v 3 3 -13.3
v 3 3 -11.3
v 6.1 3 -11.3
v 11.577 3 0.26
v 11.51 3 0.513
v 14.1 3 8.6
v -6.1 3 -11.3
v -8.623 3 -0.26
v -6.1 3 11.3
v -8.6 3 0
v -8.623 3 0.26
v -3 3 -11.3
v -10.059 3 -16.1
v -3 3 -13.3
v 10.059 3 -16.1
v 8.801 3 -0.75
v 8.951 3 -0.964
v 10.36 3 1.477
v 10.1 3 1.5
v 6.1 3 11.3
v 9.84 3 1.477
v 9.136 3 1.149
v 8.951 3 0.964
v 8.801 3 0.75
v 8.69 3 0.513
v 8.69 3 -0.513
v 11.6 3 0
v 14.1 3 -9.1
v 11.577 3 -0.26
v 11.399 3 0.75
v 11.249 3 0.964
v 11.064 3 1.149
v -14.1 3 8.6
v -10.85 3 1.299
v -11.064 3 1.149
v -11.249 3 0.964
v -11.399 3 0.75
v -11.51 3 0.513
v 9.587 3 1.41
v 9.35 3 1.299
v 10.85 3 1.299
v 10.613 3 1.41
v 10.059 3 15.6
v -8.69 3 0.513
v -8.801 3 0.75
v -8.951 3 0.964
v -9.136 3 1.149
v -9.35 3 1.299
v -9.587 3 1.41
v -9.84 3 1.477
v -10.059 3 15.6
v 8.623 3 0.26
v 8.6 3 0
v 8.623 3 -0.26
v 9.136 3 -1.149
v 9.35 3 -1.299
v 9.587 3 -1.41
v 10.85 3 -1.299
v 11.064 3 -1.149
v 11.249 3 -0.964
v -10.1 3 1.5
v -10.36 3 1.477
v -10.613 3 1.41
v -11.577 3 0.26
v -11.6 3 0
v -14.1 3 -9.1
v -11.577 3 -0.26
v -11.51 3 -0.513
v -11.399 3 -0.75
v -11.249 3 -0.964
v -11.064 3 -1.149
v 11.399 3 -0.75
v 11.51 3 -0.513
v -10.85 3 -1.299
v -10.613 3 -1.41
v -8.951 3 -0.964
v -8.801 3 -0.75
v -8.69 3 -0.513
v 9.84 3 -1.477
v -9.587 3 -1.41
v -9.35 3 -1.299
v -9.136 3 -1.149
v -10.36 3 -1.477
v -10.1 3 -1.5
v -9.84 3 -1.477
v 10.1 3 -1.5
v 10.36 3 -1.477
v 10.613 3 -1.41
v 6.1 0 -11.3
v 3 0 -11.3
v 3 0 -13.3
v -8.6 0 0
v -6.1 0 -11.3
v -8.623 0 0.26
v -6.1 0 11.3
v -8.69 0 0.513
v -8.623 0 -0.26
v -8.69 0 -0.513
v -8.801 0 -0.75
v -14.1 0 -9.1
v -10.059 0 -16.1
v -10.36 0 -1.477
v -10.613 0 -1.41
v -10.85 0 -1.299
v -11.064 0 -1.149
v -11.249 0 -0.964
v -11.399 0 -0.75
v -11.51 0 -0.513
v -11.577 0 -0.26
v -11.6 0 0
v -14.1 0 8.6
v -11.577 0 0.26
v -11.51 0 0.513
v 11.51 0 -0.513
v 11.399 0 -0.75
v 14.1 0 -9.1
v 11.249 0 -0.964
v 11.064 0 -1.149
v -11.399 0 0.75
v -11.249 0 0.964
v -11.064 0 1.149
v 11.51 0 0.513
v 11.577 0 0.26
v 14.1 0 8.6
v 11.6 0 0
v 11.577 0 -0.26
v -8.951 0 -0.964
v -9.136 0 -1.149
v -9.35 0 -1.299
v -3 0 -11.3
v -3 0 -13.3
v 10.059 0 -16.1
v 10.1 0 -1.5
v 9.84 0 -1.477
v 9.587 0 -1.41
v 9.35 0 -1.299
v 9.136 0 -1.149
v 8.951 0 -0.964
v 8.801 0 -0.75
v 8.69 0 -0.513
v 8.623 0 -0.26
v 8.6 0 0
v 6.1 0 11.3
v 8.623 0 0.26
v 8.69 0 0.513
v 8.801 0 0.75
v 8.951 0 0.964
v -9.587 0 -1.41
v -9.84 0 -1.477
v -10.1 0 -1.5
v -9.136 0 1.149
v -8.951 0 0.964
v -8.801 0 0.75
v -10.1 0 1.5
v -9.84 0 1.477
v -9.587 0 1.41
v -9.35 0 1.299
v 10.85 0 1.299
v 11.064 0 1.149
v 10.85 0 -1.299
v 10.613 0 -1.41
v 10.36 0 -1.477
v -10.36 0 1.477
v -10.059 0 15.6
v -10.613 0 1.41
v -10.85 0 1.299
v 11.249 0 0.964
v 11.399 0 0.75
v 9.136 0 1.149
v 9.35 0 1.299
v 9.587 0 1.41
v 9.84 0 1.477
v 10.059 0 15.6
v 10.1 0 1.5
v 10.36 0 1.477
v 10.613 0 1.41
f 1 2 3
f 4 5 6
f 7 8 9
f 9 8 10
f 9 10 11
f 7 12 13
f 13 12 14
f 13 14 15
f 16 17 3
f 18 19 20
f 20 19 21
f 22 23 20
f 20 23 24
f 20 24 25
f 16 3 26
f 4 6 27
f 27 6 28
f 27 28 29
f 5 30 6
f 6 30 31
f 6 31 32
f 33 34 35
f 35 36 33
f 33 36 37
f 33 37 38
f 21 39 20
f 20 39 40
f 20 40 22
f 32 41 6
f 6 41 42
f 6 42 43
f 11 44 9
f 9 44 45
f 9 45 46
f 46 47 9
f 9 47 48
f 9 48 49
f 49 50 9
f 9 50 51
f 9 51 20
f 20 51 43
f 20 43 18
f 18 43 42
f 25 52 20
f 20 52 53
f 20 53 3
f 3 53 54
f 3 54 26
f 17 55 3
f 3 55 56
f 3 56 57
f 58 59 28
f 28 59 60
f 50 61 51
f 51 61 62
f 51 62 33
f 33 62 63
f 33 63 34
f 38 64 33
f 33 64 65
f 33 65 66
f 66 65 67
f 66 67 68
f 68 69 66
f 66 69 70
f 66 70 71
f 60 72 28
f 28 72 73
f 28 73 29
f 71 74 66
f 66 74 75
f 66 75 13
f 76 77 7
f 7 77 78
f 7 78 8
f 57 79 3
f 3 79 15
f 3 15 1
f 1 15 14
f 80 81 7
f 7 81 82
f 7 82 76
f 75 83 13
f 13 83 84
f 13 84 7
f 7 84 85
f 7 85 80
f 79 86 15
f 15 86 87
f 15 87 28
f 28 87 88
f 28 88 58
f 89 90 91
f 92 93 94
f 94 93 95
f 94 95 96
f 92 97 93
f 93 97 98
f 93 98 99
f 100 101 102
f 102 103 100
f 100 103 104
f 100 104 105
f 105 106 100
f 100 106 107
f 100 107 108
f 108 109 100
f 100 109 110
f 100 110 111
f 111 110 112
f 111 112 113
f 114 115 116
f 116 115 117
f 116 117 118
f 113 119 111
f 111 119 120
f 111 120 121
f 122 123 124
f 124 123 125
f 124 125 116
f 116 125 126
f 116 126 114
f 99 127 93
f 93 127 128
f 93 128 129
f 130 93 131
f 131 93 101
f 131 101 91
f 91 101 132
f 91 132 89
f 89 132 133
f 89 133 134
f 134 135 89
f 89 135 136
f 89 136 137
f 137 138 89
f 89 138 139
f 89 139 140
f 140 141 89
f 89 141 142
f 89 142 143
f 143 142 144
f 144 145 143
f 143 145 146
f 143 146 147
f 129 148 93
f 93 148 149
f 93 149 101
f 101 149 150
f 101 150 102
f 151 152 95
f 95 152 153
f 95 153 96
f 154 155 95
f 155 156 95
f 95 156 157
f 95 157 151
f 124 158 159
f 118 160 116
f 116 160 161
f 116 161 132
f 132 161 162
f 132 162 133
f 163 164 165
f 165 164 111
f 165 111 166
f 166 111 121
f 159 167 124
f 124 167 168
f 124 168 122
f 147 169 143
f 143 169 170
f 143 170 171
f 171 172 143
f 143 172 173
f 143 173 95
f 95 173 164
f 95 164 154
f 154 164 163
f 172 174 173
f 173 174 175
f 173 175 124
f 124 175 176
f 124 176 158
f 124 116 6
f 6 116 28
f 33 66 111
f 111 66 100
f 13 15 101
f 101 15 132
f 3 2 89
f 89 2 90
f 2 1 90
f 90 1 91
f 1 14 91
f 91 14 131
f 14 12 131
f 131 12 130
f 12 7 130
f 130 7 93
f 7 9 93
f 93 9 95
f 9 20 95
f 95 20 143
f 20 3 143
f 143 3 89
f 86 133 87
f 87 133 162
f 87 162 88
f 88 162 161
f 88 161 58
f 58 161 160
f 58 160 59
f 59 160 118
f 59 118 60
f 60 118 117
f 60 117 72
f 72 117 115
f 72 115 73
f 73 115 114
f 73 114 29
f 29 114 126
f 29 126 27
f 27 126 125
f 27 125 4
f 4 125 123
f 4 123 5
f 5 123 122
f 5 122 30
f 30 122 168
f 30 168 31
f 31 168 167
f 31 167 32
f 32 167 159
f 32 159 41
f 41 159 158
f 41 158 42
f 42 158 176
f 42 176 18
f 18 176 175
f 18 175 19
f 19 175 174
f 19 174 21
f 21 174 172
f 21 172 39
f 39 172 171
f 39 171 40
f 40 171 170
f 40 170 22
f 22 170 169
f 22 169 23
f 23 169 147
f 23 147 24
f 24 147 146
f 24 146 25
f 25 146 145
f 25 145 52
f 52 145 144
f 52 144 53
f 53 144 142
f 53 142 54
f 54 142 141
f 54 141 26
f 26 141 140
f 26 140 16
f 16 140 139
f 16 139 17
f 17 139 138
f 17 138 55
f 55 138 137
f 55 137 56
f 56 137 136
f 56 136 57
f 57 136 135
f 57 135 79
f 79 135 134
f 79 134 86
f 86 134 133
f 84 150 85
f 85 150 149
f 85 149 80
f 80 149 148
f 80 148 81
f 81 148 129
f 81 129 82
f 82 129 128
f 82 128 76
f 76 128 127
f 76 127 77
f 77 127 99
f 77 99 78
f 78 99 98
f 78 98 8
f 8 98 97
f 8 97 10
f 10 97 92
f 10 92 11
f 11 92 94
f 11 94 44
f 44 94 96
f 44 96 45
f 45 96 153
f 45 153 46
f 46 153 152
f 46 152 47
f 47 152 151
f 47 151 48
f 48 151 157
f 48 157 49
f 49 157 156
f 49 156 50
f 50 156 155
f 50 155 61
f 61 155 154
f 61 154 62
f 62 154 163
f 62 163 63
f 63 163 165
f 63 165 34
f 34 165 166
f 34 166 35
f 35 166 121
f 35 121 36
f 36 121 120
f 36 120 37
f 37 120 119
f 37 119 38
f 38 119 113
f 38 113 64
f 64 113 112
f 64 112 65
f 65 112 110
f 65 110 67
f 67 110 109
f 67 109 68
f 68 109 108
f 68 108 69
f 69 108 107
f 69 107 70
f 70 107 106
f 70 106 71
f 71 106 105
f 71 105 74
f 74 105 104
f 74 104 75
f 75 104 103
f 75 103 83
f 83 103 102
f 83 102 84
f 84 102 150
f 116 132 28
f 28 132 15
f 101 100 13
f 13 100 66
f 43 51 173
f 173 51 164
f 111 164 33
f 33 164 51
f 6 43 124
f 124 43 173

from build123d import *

# Parameters (mm, degrees)
SKETCH1_W           = 28.2
SKETCH1_H           = 32.2
SKETCH1_R           = 1.5
BOSS_EXTRUDE1_DEPTH = 3
CHAMFER1_SIZE       = 7
CHAMFER1_SIZE2      = 4.041451884
CHAMFER3_SIZE       = 7
CHAMFER3_SIZE2      = 4.041451884
SKETCH2_W           = 28.2
SKETCH2_H           = 3
CUT_EXTRUDE1_DEPTH  = 0.5
CHAMFER4_SIZE       = 7
CHAMFER4_SIZE2      = 4.041451884
CHAMFER5_SIZE       = 7
CHAMFER5_SIZE2      = 4.041451884


with BuildPart() as part:
    # Sketch1 → Boss-Extrude1 (new body)
    with BuildSketch(Plane(origin=(0, 0, 0), x_dir=(1, 0, 0), z_dir=(0, 1, 0))):
        Rectangle(SKETCH1_W, SKETCH1_H)
        with Locations(Location((10.1, 0, 0), (0, 0, 270))):
            Circle(SKETCH1_R, mode=Mode.SUBTRACT)
        with Locations(Location((-10.1, 0, 0), (0, 0, 90))):
            Circle(SKETCH1_R, mode=Mode.SUBTRACT)
        Polygon((-6.1, -11.3), (6.1, -11.3), (6.1, 11.3), (3, 11.3), (3, 13.3), (-3, 13.3), (-3, 11.3), (-6.1, 11.3), align=None, mode=Mode.SUBTRACT)
    extrude(amount=BOSS_EXTRUDE1_DEPTH)

    # Chamfer1
    chamfer1_edges = [part.edges().sort_by_distance(p)[0] for p in [
        (14.1, 1.5, -16.1),
    ]]
    chamfer1_side = [part.faces().sort_by_distance(p)[0] for p in [
        (14.1, 1.5, 0),
    ]]
    chamfer(chamfer1_edges, length=CHAMFER1_SIZE, length2=CHAMFER1_SIZE2, reference=chamfer1_side[0])

    # Chamfer3
    chamfer3_edges = [part.edges().sort_by_distance(p)[0] for p in [
        (-14.1, 1.5, -16.1),
    ]]
    chamfer3_side = [part.faces().sort_by_distance(p)[0] for p in [
        (-14.1, 1.5, 0),
    ]]
    chamfer(chamfer3_edges, length=CHAMFER3_SIZE, length2=CHAMFER3_SIZE2, reference=chamfer3_side[0])

    # Sketch2 → Cut-Extrude1 (cut)
    with BuildSketch(Plane.XY.offset(16.1)):
        with Locations((0, 1.5)):
            Rectangle(SKETCH2_W, SKETCH2_H)
    extrude(amount=-CUT_EXTRUDE1_DEPTH, mode=Mode.SUBTRACT)

    # Chamfer4
    chamfer4_edges = [part.edges().sort_by_distance(p)[0] for p in [
        (-14.1, 1.5, 15.6),
    ]]
    chamfer4_side = [part.faces().sort_by_distance(p)[0] for p in [
        (-14.1, 1.5, 3.25),
    ]]
    chamfer(chamfer4_edges, length=CHAMFER4_SIZE, length2=CHAMFER4_SIZE2, reference=chamfer4_side[0])

    # Chamfer5
    chamfer5_edges = [part.edges().sort_by_distance(p)[0] for p in [
        (14.1, 1.5, 15.6),
    ]]
    chamfer5_side = [part.faces().sort_by_distance(p)[0] for p in [
        (14.1, 1.5, 3.25),
    ]]
    chamfer(chamfer5_edges, length=CHAMFER5_SIZE, length2=CHAMFER5_SIZE2, reference=chamfer5_side[0])


solid = part.part
